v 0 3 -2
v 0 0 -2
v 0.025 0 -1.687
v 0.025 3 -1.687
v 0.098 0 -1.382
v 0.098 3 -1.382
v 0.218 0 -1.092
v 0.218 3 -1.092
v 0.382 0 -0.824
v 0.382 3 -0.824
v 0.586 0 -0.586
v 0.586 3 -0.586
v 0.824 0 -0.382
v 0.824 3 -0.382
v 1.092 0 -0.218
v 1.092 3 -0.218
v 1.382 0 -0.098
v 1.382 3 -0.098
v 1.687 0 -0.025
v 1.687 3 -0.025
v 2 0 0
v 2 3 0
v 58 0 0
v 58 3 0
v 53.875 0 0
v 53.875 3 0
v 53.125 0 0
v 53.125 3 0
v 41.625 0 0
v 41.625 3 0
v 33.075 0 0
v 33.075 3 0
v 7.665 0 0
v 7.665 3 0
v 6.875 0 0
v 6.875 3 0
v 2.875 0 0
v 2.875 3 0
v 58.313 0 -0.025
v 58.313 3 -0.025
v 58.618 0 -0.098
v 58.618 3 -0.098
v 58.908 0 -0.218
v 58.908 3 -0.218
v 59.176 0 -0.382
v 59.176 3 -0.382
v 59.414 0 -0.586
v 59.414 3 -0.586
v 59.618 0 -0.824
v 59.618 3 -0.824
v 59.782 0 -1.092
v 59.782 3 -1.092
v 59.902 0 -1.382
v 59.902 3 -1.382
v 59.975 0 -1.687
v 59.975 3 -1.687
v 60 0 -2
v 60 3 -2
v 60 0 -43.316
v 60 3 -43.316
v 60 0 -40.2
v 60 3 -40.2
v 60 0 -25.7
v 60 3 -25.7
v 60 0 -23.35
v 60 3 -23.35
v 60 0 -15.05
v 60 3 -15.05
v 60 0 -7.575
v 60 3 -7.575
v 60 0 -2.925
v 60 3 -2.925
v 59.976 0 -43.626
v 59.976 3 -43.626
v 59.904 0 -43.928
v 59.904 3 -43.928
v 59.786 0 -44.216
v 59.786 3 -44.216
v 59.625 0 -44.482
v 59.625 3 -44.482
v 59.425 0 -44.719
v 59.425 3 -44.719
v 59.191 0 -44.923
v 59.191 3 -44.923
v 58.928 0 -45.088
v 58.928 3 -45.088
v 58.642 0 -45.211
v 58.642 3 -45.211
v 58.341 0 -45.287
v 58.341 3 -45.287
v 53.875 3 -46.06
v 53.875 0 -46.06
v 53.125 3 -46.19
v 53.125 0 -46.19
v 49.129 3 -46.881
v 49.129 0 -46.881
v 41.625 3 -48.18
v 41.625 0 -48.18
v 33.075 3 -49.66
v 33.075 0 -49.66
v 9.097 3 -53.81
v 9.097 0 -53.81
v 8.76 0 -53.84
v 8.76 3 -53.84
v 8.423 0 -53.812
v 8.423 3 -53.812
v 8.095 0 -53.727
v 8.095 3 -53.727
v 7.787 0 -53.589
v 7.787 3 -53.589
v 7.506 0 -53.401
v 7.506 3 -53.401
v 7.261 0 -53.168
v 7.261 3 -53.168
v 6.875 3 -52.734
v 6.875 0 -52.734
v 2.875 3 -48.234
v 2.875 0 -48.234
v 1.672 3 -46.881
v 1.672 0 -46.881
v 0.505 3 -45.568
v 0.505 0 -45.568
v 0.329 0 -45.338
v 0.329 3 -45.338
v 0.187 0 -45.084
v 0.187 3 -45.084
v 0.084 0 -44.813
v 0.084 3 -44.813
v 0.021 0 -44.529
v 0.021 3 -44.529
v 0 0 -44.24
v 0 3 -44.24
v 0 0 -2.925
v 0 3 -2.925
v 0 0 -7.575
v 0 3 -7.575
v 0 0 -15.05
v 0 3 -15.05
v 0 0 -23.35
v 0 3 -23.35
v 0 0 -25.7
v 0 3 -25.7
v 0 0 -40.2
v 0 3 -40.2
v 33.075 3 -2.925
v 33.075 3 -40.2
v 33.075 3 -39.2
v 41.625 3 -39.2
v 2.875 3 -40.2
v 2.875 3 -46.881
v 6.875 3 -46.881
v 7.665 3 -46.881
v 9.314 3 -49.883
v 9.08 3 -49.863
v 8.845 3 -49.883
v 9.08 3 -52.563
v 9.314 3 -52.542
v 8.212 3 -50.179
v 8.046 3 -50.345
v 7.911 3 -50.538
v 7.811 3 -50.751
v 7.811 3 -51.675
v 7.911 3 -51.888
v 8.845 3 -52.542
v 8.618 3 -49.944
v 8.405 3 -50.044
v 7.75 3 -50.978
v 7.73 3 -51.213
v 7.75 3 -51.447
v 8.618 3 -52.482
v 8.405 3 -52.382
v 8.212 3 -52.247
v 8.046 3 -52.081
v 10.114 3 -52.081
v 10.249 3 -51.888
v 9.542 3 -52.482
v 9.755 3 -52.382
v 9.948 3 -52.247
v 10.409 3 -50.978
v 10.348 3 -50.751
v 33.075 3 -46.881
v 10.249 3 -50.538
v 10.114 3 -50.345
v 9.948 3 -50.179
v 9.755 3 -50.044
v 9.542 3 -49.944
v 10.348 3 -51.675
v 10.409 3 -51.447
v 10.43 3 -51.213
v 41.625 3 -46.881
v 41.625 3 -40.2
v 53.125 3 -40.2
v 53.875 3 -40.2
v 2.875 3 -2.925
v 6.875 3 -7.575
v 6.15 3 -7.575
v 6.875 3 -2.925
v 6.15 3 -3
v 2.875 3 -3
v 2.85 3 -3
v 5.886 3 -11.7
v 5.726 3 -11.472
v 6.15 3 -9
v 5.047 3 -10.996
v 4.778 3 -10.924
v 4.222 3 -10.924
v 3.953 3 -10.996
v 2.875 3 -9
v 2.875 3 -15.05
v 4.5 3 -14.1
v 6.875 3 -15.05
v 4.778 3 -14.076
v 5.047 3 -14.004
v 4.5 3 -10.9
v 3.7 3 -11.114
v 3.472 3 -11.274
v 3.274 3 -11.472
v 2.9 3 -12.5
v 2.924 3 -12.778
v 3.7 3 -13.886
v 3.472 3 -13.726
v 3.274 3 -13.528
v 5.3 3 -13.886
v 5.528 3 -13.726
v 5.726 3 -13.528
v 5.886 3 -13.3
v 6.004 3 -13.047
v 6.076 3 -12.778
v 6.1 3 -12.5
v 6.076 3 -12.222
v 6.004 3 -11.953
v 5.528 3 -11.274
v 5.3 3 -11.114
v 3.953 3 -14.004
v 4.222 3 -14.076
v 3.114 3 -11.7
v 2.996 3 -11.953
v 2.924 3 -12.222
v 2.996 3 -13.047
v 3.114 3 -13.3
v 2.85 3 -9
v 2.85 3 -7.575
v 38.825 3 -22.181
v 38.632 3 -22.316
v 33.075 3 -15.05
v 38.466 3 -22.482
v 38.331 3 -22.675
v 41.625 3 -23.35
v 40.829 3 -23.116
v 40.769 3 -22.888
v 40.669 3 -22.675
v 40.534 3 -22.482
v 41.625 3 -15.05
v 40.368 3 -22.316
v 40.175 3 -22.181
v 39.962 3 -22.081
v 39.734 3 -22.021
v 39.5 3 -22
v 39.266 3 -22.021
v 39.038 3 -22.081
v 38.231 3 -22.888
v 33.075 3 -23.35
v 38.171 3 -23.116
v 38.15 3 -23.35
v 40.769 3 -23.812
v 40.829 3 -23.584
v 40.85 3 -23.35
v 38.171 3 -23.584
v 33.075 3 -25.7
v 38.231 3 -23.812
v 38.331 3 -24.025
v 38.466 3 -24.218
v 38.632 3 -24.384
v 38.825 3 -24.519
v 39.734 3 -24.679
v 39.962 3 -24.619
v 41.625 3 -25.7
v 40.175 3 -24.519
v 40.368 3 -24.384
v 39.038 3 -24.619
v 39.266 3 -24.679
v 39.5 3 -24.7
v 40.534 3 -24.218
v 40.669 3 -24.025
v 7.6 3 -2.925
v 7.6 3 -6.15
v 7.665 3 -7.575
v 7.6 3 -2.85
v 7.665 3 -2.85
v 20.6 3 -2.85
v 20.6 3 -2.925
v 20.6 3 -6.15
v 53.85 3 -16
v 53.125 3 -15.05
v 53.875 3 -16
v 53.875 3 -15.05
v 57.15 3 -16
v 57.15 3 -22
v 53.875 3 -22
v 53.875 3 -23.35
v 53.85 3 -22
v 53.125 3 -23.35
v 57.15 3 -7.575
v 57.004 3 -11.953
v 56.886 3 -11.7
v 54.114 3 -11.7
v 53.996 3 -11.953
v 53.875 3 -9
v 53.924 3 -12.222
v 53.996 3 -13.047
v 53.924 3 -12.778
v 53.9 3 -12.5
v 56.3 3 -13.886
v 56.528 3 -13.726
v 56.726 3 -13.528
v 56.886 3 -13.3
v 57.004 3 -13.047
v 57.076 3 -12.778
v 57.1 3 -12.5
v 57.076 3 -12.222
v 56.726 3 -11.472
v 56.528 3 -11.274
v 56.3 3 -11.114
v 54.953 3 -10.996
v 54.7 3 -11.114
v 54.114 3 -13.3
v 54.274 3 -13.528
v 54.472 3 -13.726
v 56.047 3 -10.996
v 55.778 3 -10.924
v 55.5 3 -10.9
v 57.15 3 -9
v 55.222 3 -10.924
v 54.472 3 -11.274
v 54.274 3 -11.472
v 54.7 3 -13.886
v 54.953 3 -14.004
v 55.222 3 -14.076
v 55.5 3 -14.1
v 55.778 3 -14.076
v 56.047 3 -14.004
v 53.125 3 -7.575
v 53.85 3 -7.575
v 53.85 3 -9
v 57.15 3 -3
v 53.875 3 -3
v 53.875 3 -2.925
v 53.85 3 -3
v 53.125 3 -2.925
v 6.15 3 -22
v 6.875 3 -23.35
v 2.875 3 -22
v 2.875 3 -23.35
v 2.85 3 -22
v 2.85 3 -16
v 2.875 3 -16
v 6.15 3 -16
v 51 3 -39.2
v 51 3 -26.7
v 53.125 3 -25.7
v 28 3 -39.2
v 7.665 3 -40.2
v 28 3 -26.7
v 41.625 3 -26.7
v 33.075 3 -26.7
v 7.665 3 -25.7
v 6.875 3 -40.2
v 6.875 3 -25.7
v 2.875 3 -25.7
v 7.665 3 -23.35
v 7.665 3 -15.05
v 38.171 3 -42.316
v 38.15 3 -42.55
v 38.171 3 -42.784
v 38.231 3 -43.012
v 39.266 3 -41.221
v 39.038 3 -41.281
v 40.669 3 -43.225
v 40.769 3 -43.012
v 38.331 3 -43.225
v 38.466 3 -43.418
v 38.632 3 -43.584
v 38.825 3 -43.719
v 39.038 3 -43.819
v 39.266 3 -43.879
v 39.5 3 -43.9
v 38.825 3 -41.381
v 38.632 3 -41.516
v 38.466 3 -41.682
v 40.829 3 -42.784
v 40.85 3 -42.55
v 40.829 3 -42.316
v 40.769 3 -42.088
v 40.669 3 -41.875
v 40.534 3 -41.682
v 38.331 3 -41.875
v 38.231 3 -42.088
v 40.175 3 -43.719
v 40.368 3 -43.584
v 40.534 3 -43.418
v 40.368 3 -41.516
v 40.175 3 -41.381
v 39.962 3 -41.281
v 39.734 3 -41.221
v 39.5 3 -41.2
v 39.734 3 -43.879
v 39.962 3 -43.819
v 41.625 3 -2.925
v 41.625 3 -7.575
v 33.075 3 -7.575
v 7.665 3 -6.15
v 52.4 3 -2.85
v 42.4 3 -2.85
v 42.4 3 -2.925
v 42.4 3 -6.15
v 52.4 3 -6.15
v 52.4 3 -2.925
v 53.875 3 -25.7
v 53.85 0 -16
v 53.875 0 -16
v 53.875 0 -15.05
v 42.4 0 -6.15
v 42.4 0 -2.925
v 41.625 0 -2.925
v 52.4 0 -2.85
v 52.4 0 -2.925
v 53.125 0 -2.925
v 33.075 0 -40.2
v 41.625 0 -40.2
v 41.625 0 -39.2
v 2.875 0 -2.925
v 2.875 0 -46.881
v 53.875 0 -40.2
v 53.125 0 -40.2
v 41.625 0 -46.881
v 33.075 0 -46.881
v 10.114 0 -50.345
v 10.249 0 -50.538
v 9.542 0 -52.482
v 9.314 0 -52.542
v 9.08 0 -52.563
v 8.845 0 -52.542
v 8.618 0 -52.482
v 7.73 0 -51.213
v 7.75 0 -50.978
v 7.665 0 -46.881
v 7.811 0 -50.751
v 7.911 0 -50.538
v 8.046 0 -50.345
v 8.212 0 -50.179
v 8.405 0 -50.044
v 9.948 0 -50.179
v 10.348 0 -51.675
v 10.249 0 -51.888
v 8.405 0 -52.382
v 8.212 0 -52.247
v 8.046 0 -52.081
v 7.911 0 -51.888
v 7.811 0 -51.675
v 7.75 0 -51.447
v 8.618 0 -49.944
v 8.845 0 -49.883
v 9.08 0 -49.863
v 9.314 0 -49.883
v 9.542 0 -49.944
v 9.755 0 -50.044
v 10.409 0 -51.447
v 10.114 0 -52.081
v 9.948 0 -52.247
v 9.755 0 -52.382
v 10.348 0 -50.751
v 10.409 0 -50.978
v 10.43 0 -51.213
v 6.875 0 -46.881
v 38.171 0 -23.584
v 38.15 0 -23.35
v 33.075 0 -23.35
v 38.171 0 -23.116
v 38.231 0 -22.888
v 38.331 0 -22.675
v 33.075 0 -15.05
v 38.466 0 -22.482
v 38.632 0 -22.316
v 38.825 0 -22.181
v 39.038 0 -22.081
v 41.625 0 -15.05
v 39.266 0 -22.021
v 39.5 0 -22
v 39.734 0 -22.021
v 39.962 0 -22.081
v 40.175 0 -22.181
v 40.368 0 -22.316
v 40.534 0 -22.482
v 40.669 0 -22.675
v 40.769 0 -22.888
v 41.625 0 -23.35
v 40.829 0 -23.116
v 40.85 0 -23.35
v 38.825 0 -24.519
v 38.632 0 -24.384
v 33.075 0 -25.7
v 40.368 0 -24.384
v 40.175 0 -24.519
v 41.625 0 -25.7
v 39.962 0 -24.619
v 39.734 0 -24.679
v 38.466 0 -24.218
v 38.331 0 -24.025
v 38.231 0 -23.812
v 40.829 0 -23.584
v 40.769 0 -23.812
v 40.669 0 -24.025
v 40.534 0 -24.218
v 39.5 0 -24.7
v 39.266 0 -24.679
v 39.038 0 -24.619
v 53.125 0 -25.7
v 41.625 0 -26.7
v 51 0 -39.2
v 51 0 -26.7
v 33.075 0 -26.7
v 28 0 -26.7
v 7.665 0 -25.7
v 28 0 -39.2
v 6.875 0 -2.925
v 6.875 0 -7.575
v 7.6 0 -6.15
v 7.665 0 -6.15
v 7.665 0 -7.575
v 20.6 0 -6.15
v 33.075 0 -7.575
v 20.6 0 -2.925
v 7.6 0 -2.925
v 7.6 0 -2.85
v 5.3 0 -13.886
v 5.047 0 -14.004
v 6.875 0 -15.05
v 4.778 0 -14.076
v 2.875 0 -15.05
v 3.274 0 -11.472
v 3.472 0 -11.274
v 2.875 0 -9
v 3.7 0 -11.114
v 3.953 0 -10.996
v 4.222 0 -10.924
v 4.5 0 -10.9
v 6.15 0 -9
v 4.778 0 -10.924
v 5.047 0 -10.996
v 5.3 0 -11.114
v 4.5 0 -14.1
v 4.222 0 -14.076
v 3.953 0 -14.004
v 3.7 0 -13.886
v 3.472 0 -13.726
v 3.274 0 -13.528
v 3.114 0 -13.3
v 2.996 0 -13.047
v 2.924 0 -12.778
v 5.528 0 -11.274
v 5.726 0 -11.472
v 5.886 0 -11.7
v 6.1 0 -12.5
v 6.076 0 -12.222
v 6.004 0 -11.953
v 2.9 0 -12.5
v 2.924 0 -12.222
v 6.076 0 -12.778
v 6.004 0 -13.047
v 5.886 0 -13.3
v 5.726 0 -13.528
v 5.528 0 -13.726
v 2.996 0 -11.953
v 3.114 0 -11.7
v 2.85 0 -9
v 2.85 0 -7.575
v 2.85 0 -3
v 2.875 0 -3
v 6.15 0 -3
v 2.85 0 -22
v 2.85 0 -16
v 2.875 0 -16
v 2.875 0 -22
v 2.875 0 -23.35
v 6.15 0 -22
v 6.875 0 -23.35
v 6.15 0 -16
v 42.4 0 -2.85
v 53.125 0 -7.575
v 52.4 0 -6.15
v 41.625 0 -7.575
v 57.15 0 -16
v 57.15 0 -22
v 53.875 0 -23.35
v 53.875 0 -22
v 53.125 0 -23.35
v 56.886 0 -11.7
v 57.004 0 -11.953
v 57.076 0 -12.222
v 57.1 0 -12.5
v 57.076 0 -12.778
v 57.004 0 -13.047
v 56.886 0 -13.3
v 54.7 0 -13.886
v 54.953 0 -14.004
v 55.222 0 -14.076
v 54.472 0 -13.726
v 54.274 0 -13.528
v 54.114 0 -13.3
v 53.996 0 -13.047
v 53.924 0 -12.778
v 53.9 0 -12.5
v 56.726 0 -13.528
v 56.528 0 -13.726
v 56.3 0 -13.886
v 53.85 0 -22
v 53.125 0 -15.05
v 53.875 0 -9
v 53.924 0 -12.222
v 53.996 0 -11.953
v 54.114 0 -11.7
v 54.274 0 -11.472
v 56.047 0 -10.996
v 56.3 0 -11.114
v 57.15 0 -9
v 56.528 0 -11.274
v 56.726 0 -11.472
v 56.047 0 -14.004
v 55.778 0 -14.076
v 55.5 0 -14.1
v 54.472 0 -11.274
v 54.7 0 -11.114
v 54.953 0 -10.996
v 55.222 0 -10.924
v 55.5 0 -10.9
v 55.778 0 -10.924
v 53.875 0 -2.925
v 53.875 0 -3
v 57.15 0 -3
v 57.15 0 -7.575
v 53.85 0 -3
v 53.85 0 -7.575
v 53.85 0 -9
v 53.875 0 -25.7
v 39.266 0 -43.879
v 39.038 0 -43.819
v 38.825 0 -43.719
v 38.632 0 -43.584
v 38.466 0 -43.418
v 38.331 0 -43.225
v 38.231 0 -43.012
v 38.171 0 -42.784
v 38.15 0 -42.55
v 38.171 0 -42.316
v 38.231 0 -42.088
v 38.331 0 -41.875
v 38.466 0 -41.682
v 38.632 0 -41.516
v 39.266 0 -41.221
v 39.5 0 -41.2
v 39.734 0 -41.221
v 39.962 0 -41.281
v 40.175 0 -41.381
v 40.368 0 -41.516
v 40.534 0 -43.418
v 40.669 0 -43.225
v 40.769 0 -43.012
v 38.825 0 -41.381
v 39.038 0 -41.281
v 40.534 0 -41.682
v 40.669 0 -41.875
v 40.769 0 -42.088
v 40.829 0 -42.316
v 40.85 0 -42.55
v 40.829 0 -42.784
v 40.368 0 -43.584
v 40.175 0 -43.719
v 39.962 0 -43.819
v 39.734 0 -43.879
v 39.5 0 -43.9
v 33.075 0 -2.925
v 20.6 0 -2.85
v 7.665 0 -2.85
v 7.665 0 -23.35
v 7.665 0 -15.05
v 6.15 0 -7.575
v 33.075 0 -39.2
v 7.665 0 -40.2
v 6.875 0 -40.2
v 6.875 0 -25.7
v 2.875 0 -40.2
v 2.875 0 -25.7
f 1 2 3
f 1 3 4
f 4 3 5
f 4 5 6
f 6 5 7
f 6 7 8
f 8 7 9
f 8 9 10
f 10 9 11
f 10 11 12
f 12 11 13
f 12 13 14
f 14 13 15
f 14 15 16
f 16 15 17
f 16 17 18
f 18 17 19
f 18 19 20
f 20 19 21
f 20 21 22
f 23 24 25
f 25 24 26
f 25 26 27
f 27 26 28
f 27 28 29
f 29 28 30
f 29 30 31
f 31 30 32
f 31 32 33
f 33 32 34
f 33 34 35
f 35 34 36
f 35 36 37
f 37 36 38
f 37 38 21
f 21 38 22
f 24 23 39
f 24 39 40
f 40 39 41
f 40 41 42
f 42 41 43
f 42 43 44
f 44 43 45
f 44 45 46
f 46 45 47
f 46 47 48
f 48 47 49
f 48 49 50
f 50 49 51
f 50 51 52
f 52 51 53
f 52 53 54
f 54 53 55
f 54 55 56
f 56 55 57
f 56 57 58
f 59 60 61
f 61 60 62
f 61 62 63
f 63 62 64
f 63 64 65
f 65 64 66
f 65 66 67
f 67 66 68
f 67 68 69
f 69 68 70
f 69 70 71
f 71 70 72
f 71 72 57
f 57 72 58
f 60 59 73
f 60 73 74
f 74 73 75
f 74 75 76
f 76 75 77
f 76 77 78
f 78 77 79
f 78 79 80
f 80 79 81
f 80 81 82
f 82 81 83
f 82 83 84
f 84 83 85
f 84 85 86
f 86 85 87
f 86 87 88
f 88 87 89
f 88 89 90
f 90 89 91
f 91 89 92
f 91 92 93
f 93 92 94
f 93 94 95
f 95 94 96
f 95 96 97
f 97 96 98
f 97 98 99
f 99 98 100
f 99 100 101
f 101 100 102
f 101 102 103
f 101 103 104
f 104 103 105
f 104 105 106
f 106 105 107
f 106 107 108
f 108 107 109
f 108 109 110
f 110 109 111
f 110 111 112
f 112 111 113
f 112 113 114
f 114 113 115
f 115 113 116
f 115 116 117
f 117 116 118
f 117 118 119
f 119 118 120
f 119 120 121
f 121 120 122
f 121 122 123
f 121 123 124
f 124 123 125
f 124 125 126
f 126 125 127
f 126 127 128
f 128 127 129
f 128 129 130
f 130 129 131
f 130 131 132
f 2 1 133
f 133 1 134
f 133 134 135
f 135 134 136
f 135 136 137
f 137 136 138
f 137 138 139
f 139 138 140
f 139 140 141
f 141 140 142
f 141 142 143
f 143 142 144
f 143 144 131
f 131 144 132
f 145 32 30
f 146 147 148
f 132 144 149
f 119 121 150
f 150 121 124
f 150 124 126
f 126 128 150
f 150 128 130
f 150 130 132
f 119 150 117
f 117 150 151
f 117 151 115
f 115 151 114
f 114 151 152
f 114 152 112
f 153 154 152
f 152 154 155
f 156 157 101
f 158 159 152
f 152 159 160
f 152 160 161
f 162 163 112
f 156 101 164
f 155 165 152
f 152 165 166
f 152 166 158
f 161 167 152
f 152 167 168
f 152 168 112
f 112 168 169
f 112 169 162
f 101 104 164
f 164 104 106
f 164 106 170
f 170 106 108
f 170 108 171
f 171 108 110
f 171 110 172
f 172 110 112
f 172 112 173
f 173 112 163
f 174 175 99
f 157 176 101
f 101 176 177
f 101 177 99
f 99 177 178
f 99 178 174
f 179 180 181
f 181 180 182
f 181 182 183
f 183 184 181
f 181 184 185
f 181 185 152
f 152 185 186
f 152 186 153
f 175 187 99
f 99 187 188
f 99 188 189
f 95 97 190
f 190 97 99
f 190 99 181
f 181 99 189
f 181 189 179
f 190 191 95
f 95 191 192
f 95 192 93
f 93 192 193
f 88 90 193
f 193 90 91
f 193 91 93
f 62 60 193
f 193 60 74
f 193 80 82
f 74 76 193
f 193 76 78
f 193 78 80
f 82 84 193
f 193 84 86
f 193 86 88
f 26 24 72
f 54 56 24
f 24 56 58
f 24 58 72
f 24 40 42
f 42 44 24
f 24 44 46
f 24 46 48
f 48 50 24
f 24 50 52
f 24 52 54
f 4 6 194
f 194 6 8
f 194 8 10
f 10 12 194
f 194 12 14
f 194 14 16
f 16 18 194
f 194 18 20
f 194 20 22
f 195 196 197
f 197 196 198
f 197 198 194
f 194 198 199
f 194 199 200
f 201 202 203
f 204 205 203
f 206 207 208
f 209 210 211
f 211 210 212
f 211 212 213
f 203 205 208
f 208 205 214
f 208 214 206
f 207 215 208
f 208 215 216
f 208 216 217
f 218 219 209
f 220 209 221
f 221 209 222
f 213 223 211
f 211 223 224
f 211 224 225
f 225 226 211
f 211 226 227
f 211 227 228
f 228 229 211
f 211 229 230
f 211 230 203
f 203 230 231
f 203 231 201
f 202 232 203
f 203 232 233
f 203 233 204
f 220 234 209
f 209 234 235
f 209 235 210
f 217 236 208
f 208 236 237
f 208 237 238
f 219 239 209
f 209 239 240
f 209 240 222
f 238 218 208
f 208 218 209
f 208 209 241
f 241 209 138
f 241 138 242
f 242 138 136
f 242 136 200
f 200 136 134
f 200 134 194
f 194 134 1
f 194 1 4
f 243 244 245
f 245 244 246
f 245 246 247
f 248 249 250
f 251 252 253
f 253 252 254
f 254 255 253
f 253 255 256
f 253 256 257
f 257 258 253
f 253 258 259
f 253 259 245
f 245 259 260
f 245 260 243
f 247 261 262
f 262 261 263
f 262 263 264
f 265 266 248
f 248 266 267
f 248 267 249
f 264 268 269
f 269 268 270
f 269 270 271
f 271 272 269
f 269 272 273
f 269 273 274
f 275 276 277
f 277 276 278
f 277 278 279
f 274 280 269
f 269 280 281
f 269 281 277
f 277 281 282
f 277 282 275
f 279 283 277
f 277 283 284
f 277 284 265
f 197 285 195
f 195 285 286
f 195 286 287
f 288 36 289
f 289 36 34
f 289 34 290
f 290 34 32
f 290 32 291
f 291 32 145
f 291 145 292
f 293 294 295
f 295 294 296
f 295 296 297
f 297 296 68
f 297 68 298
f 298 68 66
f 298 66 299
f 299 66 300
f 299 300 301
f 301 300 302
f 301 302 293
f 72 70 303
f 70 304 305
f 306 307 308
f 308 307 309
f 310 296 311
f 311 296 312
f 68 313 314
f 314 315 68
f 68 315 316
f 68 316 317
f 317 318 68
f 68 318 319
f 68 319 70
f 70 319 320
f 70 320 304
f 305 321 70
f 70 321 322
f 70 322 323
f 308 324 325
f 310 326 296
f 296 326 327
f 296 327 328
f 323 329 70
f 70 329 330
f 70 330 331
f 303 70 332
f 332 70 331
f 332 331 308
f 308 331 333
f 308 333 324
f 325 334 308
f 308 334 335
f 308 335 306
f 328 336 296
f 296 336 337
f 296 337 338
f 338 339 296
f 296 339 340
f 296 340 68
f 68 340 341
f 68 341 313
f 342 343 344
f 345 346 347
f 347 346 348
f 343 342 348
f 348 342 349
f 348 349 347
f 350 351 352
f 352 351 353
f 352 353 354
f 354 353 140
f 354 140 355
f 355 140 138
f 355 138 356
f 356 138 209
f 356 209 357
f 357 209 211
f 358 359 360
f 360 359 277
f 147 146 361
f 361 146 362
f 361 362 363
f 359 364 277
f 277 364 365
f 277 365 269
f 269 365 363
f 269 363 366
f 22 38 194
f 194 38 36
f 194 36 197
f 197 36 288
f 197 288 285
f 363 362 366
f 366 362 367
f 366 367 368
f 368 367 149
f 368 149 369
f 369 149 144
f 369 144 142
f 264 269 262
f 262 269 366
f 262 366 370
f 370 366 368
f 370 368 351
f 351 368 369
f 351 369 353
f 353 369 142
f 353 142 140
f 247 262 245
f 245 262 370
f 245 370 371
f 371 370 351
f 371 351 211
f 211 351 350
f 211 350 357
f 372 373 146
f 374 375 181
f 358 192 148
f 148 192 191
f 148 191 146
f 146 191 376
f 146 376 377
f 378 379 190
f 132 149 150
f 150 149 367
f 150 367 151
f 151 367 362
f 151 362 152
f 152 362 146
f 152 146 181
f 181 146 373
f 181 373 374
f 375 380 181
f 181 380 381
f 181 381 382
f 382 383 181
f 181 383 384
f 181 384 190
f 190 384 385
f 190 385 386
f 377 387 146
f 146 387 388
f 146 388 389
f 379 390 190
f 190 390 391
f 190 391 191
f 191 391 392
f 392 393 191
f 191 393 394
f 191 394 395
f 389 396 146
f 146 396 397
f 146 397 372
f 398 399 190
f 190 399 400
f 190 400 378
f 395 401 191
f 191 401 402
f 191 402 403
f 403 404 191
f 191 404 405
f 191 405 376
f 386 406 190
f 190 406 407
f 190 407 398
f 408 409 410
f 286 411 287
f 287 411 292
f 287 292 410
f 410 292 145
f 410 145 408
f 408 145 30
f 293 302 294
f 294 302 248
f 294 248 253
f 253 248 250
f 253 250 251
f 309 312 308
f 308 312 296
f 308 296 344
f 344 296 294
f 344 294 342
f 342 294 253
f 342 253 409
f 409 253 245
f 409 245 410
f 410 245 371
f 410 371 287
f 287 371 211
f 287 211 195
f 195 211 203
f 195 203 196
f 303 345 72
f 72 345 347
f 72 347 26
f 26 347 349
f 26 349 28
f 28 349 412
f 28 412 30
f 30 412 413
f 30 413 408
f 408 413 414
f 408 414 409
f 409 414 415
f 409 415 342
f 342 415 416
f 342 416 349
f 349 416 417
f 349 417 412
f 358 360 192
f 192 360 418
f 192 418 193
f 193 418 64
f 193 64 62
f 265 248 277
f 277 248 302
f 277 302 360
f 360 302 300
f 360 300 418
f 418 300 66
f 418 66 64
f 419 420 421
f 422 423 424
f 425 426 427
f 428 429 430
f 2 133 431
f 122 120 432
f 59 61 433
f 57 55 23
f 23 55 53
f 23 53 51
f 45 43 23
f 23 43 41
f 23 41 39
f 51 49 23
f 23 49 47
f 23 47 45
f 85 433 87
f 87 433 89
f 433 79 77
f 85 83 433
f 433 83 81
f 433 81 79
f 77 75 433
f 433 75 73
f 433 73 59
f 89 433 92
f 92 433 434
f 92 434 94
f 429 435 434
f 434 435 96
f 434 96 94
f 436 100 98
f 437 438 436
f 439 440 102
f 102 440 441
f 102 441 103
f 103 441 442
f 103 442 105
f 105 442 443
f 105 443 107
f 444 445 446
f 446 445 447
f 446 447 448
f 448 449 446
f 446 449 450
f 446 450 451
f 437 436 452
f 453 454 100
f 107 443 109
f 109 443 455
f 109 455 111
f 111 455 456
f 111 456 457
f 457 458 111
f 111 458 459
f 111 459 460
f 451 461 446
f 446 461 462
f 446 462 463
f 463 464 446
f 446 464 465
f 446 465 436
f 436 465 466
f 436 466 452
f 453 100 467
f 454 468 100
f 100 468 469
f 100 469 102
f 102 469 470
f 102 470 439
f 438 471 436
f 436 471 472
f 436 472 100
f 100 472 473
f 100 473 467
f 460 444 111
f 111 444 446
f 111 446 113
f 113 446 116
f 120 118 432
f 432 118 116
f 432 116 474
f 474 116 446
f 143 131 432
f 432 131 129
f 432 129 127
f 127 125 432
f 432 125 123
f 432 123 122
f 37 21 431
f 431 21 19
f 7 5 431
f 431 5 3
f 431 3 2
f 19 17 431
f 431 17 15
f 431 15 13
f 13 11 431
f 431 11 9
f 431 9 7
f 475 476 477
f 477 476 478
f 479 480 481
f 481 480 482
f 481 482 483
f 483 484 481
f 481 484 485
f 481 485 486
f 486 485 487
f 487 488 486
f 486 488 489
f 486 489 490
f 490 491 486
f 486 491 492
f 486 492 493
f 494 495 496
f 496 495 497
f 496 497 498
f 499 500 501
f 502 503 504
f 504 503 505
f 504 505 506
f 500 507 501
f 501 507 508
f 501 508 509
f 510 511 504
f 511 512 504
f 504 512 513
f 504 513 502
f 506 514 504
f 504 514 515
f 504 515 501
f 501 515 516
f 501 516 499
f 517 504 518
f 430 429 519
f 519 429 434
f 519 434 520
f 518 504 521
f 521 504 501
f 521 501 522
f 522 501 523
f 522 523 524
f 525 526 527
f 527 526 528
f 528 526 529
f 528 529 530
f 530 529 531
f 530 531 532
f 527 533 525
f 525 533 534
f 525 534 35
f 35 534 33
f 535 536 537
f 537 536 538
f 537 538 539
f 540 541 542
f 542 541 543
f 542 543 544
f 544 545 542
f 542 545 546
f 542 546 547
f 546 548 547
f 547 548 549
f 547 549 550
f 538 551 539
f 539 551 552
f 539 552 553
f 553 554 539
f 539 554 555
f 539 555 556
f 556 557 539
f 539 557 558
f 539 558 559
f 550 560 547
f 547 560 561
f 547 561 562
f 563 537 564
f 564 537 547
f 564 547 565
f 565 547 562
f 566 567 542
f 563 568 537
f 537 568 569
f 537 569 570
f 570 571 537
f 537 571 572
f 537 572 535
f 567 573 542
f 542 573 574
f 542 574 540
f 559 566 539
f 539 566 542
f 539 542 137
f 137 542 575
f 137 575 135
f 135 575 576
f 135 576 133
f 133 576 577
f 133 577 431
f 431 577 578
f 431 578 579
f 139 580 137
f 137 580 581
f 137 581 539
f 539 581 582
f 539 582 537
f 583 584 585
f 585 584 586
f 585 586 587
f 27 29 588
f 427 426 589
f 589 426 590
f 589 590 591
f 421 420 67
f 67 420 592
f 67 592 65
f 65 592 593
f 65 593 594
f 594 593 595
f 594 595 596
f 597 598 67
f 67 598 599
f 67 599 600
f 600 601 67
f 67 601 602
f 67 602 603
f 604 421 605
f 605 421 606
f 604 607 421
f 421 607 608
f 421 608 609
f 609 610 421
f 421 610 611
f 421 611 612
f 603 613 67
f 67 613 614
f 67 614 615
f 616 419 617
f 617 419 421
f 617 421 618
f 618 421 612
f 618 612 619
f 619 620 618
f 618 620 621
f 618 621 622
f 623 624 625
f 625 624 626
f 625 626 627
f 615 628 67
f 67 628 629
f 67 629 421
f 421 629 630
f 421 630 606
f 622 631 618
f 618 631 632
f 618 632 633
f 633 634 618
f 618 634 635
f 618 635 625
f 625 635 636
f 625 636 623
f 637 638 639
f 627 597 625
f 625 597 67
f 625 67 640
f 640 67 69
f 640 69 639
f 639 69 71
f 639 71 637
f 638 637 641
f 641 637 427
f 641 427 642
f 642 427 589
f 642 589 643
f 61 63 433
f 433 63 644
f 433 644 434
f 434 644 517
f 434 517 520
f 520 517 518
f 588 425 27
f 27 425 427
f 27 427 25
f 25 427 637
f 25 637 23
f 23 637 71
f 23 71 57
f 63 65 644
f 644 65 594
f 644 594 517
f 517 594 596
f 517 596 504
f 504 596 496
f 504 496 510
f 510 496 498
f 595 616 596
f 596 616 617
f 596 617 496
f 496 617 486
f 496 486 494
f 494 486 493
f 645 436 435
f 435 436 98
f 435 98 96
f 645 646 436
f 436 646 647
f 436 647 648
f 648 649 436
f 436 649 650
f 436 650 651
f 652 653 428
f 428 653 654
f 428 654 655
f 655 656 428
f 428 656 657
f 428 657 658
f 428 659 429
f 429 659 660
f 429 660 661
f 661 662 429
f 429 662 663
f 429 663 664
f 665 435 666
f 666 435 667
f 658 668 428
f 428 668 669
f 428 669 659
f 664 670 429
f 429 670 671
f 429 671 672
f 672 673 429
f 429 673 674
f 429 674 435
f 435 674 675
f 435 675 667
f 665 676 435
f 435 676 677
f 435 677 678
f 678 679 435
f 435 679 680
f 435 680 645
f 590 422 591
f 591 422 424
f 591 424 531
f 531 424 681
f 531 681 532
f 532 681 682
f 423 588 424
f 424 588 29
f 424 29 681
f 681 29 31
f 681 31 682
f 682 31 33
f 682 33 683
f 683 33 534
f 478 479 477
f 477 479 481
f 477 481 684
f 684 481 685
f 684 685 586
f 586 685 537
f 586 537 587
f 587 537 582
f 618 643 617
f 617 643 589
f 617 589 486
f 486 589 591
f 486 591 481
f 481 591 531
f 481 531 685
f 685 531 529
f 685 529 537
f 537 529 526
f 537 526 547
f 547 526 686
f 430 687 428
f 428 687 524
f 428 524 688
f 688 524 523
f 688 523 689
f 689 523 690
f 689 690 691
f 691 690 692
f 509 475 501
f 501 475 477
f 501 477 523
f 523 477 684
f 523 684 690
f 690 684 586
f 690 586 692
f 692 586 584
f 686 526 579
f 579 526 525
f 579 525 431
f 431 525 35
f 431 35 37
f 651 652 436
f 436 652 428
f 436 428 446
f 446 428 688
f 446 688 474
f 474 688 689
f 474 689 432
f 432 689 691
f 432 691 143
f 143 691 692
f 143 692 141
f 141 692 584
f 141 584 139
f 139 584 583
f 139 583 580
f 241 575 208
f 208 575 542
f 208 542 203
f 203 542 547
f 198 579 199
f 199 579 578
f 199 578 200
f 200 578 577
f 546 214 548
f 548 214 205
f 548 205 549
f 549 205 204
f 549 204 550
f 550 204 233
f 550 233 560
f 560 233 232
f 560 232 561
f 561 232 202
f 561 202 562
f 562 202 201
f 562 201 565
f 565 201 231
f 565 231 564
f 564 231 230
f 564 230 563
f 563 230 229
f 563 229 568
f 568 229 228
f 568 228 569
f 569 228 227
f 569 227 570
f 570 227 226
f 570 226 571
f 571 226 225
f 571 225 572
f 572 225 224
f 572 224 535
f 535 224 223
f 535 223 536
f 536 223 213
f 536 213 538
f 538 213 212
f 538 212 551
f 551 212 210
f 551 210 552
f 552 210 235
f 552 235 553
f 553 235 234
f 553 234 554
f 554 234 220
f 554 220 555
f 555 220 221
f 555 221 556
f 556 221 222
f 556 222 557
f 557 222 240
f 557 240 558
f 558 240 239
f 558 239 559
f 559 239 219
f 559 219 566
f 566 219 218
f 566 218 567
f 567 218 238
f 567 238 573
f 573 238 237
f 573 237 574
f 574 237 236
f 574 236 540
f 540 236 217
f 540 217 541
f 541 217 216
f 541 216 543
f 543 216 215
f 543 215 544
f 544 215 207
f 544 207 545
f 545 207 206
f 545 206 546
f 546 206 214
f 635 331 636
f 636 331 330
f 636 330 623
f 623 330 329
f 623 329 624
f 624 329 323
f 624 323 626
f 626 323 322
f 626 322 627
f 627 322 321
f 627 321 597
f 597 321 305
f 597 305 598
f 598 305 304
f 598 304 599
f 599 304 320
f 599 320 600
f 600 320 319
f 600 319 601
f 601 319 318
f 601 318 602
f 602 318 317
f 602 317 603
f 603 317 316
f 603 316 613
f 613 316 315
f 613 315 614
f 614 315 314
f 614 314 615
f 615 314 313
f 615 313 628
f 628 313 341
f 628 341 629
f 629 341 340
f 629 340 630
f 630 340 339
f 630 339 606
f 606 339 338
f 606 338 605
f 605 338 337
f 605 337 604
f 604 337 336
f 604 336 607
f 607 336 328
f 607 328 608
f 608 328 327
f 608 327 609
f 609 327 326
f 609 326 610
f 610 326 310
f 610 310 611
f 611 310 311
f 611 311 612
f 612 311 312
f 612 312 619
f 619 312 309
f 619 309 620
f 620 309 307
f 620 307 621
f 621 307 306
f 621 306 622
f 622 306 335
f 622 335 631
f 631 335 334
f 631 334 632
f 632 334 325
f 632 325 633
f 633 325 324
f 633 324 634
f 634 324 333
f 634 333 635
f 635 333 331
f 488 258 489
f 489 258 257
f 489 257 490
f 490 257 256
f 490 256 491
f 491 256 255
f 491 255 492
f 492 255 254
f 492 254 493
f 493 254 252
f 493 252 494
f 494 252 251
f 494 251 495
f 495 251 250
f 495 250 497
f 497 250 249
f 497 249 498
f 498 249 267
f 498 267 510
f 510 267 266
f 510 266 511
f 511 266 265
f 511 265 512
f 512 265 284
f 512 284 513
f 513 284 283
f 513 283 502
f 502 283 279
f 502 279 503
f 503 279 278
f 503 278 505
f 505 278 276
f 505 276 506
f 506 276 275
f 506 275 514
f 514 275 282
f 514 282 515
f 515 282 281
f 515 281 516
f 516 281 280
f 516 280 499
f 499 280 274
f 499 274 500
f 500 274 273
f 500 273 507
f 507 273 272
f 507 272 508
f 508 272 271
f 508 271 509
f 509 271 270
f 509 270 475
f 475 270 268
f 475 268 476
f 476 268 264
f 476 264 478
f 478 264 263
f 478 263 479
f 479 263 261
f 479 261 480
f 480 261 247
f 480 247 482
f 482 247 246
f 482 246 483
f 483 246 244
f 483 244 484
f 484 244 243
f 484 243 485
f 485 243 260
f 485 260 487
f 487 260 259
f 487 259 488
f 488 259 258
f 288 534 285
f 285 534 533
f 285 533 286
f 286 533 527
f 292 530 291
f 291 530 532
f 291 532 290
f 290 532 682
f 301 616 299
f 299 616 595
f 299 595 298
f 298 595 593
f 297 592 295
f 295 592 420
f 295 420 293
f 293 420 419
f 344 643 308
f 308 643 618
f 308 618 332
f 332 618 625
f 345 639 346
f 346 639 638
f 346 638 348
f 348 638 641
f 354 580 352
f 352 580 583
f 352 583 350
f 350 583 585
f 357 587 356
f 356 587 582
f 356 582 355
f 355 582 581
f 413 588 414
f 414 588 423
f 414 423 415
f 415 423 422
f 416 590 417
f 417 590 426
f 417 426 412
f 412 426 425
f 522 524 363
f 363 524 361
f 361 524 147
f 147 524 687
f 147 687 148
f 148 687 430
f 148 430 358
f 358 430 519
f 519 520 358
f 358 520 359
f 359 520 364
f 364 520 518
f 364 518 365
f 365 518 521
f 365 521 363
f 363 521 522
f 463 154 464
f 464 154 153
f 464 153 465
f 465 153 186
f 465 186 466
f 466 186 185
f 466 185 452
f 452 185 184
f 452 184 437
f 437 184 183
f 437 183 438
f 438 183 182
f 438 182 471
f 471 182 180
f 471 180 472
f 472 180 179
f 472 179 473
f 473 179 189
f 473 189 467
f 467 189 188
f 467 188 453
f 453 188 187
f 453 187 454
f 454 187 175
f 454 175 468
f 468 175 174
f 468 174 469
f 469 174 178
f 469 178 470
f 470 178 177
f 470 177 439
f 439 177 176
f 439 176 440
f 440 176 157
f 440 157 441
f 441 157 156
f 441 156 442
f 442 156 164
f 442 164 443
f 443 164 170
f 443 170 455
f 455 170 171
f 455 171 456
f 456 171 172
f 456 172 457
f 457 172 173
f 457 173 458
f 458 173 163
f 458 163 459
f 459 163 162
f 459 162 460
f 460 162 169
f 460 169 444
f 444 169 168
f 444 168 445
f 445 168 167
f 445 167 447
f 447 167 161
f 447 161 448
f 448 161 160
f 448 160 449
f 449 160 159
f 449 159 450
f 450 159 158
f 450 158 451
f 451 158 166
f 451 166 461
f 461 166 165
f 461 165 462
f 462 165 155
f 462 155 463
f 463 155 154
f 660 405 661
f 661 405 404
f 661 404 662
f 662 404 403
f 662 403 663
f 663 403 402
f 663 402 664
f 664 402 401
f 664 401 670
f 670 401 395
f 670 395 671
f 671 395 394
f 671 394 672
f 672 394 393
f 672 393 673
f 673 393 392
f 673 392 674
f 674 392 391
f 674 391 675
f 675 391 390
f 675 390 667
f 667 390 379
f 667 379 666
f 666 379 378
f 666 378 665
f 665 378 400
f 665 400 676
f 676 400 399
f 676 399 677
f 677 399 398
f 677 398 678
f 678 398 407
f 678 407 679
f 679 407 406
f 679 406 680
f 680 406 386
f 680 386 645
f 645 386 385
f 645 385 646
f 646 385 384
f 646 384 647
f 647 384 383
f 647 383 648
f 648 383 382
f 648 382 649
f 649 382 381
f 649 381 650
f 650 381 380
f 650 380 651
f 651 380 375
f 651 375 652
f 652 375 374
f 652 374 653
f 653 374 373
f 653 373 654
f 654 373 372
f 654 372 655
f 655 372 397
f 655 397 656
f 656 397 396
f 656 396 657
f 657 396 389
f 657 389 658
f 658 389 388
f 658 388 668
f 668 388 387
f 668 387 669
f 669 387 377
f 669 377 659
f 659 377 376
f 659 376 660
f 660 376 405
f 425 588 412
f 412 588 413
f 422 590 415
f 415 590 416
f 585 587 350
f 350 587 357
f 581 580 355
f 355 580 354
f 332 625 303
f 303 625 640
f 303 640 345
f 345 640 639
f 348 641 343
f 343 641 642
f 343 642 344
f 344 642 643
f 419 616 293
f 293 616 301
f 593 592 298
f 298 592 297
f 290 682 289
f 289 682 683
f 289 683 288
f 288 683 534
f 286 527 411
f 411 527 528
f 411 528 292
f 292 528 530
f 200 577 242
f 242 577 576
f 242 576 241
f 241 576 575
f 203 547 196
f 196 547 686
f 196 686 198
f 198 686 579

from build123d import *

# Parameters (mm, degrees)
BOSS_EXTRUDE1_DEPTH = 3
SKETCH2_R           = 1.35
SKETCH2_R_2         = 1.6
SKETCH2_W           = 3
SKETCH2_H           = 6
SKETCH2_W_2         = 13
SKETCH2_H_2         = 3
SKETCH2_W_3         = 10
SKETCH2_W_4         = 23
SKETCH2_H_3         = 12.5
MAIN_HOLES_DEPTH    = 4
SKETCH3_W           = 0.15
SKETCH3_H           = 6
SKETCH3_W_2         = 10
SKETCH3_H_2         = 0.15
SKETCH3_W_3         = 13
TOLERANCE_DEPTH     = 4


with BuildPart() as part:
    # Sketch1 → Boss-Extrude1 (new body)
    with BuildSketch(Plane(origin=(0, 0, 0), x_dir=(1, 0, 0), z_dir=(0, 1, 0))):
        with BuildLine():
            Line((58.341082867, 45.287120273), (9.096557402, 53.810211219))
            ThreePointArc((9.096557402, 53.810211219), (8.095316223, 53.72741672), (7.260655898, 53.168237885))
            Line((7.260655898, 53.168237885), (0.505181363, 45.568329033))
            ThreePointArc((0.505181363, 45.568329033), (0.130556597, 44.95036247), (0, 44.239601355))
            Line((0, 44.239601355), (0, 2))
            ThreePointArc((0, 2), (0.585786438, 0.585786438), (2, 0))
            Line((2, 0), (58, 0))
            ThreePointArc((58, 0), (59.414213562, 0.585786438), (60, 2))
            Line((60, 2), (60, 43.316419261))
            ThreePointArc((60, 43.316419261), (59.530059759, 44.604408831), (58.341082867, 45.287120273))
        make_face()
    extrude(amount=BOSS_EXTRUDE1_DEPTH)

    # Sketch2 → Main Holes (cut, through all)
    with BuildSketch(Plane(origin=(0, 3, 0), x_dir=(1, 0, 0), z_dir=(0, 1, 0))):
        with Locations((9.079882179, 51.212916529)):
            Circle(SKETCH2_R)
        with Locations((39.5, 42.55)):
            Circle(SKETCH2_R)
        with Locations((39.5, 23.35)):
            Circle(SKETCH2_R)
        with Locations((55.5, 12.5)):
            Circle(SKETCH2_R_2)
        with Locations((4.5, 12.5)):
            Circle(SKETCH2_R_2)
        with Locations((4.5, 6)):
            Rectangle(SKETCH2_W, SKETCH2_H)
        with Locations((4.5, 19)):
            Rectangle(SKETCH2_W, SKETCH2_H)
        with Locations((55.5, 6)):
            Rectangle(SKETCH2_W, SKETCH2_H)
        with Locations((55.5, 19)):
            Rectangle(SKETCH2_W, SKETCH2_H)
        with Locations((14.1, 4.5)):
            Rectangle(SKETCH2_W_2, SKETCH2_H_2)
        with Locations((47.4, 4.5)):
            Rectangle(SKETCH2_W_3, SKETCH2_H_2)
        with Locations((39.5, 32.95)):
            Rectangle(SKETCH2_W_4, SKETCH2_H_3)
    extrude(amount=-MAIN_HOLES_DEPTH, mode=Mode.SUBTRACT)

    # Sketch3 → Tolerance (cut, through all)
    with BuildSketch(Plane(origin=(0, 3, 0), x_dir=(1, 0, 0), z_dir=(0, 1, 0))):
        with Locations((6.075, 19)):
            Rectangle(SKETCH3_W, SKETCH3_H)
        with Locations((2.925, 19)):
            Rectangle(SKETCH3_W, SKETCH3_H)
        with Locations((6.075, 6)):
            Rectangle(SKETCH3_W, SKETCH3_H)
        with Locations((2.925, 6)):
            Rectangle(SKETCH3_W, SKETCH3_H)
        with Locations((57.075, 6)):
            Rectangle(SKETCH3_W, SKETCH3_H)
        with Locations((53.925, 6)):
            Rectangle(SKETCH3_W, SKETCH3_H)
        with Locations((57.075, 19)):
            Rectangle(SKETCH3_W, SKETCH3_H)
        with Locations((53.925, 19)):
            Rectangle(SKETCH3_W, SKETCH3_H)
        with Locations((47.4, 6.075)):
            Rectangle(SKETCH3_W_2, SKETCH3_H_2)
        with Locations((47.4, 2.925)):
            Rectangle(SKETCH3_W_2, SKETCH3_H_2)
        with Locations((14.1, 6.075)):
            Rectangle(SKETCH3_W_3, SKETCH3_H_2)
        with Locations((14.1, 2.925)):
            Rectangle(SKETCH3_W_3, SKETCH3_H_2)
    extrude(amount=-TOLERANCE_DEPTH, mode=Mode.SUBTRACT)


solid = part.part
